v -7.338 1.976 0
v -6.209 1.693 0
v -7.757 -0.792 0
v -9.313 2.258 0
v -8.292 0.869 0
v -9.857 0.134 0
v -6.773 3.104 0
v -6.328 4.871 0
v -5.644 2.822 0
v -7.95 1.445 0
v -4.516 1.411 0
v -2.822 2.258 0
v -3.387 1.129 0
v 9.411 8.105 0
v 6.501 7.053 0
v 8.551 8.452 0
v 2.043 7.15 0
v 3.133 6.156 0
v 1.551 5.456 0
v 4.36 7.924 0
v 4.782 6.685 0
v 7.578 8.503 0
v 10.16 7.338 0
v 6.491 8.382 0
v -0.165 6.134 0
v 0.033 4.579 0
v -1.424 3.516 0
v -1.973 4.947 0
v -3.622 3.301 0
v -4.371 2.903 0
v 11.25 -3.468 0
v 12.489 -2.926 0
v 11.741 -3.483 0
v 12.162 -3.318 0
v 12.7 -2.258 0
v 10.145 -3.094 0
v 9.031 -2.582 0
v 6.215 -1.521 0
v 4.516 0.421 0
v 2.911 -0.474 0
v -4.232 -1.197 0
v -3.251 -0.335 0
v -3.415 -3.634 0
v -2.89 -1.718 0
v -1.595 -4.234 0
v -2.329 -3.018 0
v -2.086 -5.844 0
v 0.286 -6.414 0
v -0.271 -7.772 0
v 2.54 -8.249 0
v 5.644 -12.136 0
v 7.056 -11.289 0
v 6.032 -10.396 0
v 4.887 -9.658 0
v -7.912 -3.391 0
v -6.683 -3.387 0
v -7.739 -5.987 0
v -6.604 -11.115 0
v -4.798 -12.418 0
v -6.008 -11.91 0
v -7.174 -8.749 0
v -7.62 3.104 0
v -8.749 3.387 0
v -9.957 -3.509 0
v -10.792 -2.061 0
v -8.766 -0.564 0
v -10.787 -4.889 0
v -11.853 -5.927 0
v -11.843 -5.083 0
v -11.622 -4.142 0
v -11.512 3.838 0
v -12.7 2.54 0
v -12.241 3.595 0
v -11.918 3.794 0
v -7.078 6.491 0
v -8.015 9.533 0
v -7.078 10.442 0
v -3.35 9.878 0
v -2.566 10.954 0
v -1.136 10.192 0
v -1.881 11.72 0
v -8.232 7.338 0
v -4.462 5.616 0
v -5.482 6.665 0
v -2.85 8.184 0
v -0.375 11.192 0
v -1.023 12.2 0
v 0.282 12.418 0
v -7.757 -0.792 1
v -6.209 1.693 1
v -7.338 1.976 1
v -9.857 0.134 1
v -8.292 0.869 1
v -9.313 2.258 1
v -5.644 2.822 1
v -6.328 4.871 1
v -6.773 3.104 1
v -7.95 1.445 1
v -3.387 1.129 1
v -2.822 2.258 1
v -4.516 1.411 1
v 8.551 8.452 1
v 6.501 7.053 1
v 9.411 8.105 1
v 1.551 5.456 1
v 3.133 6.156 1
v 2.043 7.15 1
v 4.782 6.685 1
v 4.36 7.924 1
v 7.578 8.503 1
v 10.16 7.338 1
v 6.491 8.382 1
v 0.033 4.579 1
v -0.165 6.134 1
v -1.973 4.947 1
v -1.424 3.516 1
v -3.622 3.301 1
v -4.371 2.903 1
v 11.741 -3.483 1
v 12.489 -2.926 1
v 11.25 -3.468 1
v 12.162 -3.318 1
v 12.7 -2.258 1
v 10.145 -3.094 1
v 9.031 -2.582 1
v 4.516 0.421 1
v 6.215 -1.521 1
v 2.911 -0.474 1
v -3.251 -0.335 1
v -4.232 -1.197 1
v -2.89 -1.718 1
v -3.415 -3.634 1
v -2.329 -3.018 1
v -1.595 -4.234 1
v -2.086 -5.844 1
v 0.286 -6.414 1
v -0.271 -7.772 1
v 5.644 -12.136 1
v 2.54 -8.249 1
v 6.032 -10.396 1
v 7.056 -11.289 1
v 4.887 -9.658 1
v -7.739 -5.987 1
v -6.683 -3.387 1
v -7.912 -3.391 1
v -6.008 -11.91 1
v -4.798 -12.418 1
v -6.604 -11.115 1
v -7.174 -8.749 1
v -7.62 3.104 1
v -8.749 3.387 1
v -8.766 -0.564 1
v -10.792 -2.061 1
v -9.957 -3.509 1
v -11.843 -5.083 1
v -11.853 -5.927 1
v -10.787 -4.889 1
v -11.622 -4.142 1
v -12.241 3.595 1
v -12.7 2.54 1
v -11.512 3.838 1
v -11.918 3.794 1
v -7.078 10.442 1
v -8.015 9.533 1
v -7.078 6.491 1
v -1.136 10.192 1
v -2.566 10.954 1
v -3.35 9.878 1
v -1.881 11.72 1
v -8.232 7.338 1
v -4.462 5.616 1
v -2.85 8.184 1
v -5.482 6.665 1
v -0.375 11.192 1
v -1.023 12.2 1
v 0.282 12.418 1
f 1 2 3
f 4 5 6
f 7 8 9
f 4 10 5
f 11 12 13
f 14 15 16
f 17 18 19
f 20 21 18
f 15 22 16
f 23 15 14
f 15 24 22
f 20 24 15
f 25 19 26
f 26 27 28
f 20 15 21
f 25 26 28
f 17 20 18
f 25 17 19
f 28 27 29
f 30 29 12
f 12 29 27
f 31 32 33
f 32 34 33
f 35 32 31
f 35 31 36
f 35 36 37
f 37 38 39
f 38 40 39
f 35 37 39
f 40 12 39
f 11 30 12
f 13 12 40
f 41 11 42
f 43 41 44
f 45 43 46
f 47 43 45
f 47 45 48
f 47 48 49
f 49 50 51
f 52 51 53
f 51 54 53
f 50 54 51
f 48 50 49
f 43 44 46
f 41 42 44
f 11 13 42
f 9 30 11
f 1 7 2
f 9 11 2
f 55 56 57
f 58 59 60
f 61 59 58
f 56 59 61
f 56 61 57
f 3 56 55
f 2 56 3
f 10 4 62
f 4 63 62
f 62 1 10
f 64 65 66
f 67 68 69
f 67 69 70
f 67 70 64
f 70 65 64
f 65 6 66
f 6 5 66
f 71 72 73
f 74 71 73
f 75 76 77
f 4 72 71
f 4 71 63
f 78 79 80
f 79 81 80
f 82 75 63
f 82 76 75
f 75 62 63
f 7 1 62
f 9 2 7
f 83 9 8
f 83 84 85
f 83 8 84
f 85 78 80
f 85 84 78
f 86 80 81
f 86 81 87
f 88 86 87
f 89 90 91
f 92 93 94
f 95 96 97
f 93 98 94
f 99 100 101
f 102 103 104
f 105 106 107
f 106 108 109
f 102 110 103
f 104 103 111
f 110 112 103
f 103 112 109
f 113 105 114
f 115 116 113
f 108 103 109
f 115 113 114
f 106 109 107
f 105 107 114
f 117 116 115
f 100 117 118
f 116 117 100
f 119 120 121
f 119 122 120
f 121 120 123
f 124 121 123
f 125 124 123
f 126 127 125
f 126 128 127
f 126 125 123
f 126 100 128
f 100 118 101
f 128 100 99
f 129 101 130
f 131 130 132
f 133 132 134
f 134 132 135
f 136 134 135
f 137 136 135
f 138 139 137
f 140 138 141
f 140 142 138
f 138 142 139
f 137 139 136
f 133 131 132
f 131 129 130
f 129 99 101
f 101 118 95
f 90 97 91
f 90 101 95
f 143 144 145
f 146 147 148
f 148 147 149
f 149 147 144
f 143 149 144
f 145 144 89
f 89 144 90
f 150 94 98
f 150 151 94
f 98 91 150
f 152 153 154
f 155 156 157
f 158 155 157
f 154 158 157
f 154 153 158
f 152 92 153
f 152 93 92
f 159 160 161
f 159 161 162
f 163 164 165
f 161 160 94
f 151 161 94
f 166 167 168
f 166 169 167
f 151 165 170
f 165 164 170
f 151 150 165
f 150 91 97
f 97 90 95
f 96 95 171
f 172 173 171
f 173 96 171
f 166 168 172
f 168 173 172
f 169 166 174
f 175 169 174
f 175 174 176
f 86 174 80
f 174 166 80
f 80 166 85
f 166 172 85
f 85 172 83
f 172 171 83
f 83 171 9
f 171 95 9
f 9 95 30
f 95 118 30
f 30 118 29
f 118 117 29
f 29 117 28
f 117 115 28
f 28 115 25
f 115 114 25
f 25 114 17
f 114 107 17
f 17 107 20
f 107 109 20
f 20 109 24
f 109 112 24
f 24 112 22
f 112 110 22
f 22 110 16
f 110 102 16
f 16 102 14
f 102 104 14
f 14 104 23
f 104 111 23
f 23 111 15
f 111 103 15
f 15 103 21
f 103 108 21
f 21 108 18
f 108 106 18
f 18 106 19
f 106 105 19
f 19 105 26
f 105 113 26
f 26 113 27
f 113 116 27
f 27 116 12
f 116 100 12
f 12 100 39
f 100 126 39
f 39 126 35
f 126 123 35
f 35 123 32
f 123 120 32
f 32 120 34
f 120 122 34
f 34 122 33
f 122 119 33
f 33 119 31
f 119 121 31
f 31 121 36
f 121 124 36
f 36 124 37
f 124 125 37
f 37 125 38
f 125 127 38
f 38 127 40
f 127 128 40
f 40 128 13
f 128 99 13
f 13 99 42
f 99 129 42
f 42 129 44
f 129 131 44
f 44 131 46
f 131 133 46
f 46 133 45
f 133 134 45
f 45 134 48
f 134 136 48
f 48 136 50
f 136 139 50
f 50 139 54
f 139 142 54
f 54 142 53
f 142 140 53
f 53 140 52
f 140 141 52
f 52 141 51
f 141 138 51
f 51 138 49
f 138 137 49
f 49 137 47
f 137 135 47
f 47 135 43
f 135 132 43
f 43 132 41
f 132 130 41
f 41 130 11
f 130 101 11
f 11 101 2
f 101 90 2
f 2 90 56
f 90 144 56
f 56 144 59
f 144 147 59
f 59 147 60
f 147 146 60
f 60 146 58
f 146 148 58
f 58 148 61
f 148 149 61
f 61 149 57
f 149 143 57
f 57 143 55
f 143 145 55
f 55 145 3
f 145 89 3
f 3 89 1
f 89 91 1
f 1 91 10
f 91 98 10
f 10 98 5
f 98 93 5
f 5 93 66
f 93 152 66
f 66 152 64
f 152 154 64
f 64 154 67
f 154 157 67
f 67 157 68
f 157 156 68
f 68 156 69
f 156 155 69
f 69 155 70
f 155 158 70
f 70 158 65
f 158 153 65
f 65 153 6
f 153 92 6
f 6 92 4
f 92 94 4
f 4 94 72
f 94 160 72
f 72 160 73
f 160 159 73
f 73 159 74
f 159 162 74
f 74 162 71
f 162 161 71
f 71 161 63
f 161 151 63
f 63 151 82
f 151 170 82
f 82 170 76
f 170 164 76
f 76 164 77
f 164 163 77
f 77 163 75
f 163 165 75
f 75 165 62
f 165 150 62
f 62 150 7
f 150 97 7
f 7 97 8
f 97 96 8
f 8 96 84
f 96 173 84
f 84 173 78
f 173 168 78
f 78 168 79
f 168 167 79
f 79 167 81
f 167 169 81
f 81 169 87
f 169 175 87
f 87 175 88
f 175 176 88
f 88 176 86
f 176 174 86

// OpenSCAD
// Module names are of the form poly_<inkscape-path-id>().  As a result,
// you can associate a polygon in this OpenSCAD program with the corresponding
// SVG element in the Inkscape document by looking for the XML element with
// the attribute id="inkscape-path-id".

// fudge value is used to ensure that subtracted solids are a tad taller
// in the z dimension than the polygon being subtracted from.  This helps
// keep the resulting .stl file manifold.
fudge = 0.1;

module poly_Selection(h)
{
  scale([25.4/90, -25.4/90, 1]) union()
  {
    linear_extrude(height=h)
      polygon([[-11.870000,-35.000000],[-9.091250,-38.815156],[-6.665000,-41.528750],[-3.623750,-43.227969],[1.000000,-44.000000],[-1.327813,-39.657969],[-4.025000,-36.113750],[-10.100000,-29.000000],[-15.811250,-19.897500],[-20.000000,-10.000000],[-15.489375,-10.285000],[-12.835000,-11.695000],[-6.990000,-17.530000],[-0.585625,-21.736406],[7.240000,-25.336250],[15.448125,-28.075469],[23.000000,-29.700000],[26.852344,-30.127344],[30.298750,-29.946250],[33.345781,-28.717031],[36.000000,-26.000000],[23.035625,-24.991719],[16.945313,-23.687598],[11.102500,-21.811250],[5.496875,-19.333496],[0.118125,-16.225156],[-5.044063,-12.457051],[-10.000000,-8.000000],[16.000000,-1.490000],[45.000000,8.000000],[44.253145,10.367617],[43.093906,11.757188],[41.603027,12.340039],[39.861250,12.287500],[35.947969,10.961562],[32.000000,9.150000],[22.020000,5.389531],[10.315000,1.678750],[-12.000000,-4.000000],[-11.519707,1.188574],[-10.238906,6.087344],[-8.251465,10.693379],[-5.651250,15.003750],[1.012031,22.725781],[9.000000,29.230000],[17.315000,34.221250],[21.372187,36.836406],[25.000000,40.000000],[20.000000,43.000000],[-0.960000,27.540000],[-7.392344,20.706250],[-12.098750,12.875000],[-14.995781,4.241250],[-16.000000,-5.000000],[-22.000000,-6.000000],[-23.680000,12.000000],[-17.000000,44.000000],[-21.288438,42.202187],[-23.400000,39.382500],[-25.420000,31.000000],[-27.423125,21.215000],[-28.035000,12.015000],[-27.484375,2.807500],[-26.000000,-7.000000],[-28.170156,-5.121250],[-29.381250,-3.077500],[-31.060000,2.000000],[-35.281250,12.433750],[-38.222031,17.323906],[-42.000000,21.000000],[-41.964785,18.010742],[-41.180156,14.677188],[-38.238750,7.302500],[-34.927969,-0.473438],[-33.000000,-8.000000],[-45.000000,-9.000000],[-43.375000,-12.736875],[-42.229687,-13.443750],[-40.790000,-13.597500],[-31.000000,-12.000000],[-29.170000,-26.000000],[-28.400000,-33.780000],[-25.080000,-37.000000],[-25.080000,-23.000000],[-27.000000,-11.000000],[-24.000000,-11.000000],[-22.421094,-17.258750],[-19.423750,-23.615000],[-11.870000,-35.000000]]);
  }
}

module basketballd(h)
{

poly_Selection(h);
}

basketballd(1);
